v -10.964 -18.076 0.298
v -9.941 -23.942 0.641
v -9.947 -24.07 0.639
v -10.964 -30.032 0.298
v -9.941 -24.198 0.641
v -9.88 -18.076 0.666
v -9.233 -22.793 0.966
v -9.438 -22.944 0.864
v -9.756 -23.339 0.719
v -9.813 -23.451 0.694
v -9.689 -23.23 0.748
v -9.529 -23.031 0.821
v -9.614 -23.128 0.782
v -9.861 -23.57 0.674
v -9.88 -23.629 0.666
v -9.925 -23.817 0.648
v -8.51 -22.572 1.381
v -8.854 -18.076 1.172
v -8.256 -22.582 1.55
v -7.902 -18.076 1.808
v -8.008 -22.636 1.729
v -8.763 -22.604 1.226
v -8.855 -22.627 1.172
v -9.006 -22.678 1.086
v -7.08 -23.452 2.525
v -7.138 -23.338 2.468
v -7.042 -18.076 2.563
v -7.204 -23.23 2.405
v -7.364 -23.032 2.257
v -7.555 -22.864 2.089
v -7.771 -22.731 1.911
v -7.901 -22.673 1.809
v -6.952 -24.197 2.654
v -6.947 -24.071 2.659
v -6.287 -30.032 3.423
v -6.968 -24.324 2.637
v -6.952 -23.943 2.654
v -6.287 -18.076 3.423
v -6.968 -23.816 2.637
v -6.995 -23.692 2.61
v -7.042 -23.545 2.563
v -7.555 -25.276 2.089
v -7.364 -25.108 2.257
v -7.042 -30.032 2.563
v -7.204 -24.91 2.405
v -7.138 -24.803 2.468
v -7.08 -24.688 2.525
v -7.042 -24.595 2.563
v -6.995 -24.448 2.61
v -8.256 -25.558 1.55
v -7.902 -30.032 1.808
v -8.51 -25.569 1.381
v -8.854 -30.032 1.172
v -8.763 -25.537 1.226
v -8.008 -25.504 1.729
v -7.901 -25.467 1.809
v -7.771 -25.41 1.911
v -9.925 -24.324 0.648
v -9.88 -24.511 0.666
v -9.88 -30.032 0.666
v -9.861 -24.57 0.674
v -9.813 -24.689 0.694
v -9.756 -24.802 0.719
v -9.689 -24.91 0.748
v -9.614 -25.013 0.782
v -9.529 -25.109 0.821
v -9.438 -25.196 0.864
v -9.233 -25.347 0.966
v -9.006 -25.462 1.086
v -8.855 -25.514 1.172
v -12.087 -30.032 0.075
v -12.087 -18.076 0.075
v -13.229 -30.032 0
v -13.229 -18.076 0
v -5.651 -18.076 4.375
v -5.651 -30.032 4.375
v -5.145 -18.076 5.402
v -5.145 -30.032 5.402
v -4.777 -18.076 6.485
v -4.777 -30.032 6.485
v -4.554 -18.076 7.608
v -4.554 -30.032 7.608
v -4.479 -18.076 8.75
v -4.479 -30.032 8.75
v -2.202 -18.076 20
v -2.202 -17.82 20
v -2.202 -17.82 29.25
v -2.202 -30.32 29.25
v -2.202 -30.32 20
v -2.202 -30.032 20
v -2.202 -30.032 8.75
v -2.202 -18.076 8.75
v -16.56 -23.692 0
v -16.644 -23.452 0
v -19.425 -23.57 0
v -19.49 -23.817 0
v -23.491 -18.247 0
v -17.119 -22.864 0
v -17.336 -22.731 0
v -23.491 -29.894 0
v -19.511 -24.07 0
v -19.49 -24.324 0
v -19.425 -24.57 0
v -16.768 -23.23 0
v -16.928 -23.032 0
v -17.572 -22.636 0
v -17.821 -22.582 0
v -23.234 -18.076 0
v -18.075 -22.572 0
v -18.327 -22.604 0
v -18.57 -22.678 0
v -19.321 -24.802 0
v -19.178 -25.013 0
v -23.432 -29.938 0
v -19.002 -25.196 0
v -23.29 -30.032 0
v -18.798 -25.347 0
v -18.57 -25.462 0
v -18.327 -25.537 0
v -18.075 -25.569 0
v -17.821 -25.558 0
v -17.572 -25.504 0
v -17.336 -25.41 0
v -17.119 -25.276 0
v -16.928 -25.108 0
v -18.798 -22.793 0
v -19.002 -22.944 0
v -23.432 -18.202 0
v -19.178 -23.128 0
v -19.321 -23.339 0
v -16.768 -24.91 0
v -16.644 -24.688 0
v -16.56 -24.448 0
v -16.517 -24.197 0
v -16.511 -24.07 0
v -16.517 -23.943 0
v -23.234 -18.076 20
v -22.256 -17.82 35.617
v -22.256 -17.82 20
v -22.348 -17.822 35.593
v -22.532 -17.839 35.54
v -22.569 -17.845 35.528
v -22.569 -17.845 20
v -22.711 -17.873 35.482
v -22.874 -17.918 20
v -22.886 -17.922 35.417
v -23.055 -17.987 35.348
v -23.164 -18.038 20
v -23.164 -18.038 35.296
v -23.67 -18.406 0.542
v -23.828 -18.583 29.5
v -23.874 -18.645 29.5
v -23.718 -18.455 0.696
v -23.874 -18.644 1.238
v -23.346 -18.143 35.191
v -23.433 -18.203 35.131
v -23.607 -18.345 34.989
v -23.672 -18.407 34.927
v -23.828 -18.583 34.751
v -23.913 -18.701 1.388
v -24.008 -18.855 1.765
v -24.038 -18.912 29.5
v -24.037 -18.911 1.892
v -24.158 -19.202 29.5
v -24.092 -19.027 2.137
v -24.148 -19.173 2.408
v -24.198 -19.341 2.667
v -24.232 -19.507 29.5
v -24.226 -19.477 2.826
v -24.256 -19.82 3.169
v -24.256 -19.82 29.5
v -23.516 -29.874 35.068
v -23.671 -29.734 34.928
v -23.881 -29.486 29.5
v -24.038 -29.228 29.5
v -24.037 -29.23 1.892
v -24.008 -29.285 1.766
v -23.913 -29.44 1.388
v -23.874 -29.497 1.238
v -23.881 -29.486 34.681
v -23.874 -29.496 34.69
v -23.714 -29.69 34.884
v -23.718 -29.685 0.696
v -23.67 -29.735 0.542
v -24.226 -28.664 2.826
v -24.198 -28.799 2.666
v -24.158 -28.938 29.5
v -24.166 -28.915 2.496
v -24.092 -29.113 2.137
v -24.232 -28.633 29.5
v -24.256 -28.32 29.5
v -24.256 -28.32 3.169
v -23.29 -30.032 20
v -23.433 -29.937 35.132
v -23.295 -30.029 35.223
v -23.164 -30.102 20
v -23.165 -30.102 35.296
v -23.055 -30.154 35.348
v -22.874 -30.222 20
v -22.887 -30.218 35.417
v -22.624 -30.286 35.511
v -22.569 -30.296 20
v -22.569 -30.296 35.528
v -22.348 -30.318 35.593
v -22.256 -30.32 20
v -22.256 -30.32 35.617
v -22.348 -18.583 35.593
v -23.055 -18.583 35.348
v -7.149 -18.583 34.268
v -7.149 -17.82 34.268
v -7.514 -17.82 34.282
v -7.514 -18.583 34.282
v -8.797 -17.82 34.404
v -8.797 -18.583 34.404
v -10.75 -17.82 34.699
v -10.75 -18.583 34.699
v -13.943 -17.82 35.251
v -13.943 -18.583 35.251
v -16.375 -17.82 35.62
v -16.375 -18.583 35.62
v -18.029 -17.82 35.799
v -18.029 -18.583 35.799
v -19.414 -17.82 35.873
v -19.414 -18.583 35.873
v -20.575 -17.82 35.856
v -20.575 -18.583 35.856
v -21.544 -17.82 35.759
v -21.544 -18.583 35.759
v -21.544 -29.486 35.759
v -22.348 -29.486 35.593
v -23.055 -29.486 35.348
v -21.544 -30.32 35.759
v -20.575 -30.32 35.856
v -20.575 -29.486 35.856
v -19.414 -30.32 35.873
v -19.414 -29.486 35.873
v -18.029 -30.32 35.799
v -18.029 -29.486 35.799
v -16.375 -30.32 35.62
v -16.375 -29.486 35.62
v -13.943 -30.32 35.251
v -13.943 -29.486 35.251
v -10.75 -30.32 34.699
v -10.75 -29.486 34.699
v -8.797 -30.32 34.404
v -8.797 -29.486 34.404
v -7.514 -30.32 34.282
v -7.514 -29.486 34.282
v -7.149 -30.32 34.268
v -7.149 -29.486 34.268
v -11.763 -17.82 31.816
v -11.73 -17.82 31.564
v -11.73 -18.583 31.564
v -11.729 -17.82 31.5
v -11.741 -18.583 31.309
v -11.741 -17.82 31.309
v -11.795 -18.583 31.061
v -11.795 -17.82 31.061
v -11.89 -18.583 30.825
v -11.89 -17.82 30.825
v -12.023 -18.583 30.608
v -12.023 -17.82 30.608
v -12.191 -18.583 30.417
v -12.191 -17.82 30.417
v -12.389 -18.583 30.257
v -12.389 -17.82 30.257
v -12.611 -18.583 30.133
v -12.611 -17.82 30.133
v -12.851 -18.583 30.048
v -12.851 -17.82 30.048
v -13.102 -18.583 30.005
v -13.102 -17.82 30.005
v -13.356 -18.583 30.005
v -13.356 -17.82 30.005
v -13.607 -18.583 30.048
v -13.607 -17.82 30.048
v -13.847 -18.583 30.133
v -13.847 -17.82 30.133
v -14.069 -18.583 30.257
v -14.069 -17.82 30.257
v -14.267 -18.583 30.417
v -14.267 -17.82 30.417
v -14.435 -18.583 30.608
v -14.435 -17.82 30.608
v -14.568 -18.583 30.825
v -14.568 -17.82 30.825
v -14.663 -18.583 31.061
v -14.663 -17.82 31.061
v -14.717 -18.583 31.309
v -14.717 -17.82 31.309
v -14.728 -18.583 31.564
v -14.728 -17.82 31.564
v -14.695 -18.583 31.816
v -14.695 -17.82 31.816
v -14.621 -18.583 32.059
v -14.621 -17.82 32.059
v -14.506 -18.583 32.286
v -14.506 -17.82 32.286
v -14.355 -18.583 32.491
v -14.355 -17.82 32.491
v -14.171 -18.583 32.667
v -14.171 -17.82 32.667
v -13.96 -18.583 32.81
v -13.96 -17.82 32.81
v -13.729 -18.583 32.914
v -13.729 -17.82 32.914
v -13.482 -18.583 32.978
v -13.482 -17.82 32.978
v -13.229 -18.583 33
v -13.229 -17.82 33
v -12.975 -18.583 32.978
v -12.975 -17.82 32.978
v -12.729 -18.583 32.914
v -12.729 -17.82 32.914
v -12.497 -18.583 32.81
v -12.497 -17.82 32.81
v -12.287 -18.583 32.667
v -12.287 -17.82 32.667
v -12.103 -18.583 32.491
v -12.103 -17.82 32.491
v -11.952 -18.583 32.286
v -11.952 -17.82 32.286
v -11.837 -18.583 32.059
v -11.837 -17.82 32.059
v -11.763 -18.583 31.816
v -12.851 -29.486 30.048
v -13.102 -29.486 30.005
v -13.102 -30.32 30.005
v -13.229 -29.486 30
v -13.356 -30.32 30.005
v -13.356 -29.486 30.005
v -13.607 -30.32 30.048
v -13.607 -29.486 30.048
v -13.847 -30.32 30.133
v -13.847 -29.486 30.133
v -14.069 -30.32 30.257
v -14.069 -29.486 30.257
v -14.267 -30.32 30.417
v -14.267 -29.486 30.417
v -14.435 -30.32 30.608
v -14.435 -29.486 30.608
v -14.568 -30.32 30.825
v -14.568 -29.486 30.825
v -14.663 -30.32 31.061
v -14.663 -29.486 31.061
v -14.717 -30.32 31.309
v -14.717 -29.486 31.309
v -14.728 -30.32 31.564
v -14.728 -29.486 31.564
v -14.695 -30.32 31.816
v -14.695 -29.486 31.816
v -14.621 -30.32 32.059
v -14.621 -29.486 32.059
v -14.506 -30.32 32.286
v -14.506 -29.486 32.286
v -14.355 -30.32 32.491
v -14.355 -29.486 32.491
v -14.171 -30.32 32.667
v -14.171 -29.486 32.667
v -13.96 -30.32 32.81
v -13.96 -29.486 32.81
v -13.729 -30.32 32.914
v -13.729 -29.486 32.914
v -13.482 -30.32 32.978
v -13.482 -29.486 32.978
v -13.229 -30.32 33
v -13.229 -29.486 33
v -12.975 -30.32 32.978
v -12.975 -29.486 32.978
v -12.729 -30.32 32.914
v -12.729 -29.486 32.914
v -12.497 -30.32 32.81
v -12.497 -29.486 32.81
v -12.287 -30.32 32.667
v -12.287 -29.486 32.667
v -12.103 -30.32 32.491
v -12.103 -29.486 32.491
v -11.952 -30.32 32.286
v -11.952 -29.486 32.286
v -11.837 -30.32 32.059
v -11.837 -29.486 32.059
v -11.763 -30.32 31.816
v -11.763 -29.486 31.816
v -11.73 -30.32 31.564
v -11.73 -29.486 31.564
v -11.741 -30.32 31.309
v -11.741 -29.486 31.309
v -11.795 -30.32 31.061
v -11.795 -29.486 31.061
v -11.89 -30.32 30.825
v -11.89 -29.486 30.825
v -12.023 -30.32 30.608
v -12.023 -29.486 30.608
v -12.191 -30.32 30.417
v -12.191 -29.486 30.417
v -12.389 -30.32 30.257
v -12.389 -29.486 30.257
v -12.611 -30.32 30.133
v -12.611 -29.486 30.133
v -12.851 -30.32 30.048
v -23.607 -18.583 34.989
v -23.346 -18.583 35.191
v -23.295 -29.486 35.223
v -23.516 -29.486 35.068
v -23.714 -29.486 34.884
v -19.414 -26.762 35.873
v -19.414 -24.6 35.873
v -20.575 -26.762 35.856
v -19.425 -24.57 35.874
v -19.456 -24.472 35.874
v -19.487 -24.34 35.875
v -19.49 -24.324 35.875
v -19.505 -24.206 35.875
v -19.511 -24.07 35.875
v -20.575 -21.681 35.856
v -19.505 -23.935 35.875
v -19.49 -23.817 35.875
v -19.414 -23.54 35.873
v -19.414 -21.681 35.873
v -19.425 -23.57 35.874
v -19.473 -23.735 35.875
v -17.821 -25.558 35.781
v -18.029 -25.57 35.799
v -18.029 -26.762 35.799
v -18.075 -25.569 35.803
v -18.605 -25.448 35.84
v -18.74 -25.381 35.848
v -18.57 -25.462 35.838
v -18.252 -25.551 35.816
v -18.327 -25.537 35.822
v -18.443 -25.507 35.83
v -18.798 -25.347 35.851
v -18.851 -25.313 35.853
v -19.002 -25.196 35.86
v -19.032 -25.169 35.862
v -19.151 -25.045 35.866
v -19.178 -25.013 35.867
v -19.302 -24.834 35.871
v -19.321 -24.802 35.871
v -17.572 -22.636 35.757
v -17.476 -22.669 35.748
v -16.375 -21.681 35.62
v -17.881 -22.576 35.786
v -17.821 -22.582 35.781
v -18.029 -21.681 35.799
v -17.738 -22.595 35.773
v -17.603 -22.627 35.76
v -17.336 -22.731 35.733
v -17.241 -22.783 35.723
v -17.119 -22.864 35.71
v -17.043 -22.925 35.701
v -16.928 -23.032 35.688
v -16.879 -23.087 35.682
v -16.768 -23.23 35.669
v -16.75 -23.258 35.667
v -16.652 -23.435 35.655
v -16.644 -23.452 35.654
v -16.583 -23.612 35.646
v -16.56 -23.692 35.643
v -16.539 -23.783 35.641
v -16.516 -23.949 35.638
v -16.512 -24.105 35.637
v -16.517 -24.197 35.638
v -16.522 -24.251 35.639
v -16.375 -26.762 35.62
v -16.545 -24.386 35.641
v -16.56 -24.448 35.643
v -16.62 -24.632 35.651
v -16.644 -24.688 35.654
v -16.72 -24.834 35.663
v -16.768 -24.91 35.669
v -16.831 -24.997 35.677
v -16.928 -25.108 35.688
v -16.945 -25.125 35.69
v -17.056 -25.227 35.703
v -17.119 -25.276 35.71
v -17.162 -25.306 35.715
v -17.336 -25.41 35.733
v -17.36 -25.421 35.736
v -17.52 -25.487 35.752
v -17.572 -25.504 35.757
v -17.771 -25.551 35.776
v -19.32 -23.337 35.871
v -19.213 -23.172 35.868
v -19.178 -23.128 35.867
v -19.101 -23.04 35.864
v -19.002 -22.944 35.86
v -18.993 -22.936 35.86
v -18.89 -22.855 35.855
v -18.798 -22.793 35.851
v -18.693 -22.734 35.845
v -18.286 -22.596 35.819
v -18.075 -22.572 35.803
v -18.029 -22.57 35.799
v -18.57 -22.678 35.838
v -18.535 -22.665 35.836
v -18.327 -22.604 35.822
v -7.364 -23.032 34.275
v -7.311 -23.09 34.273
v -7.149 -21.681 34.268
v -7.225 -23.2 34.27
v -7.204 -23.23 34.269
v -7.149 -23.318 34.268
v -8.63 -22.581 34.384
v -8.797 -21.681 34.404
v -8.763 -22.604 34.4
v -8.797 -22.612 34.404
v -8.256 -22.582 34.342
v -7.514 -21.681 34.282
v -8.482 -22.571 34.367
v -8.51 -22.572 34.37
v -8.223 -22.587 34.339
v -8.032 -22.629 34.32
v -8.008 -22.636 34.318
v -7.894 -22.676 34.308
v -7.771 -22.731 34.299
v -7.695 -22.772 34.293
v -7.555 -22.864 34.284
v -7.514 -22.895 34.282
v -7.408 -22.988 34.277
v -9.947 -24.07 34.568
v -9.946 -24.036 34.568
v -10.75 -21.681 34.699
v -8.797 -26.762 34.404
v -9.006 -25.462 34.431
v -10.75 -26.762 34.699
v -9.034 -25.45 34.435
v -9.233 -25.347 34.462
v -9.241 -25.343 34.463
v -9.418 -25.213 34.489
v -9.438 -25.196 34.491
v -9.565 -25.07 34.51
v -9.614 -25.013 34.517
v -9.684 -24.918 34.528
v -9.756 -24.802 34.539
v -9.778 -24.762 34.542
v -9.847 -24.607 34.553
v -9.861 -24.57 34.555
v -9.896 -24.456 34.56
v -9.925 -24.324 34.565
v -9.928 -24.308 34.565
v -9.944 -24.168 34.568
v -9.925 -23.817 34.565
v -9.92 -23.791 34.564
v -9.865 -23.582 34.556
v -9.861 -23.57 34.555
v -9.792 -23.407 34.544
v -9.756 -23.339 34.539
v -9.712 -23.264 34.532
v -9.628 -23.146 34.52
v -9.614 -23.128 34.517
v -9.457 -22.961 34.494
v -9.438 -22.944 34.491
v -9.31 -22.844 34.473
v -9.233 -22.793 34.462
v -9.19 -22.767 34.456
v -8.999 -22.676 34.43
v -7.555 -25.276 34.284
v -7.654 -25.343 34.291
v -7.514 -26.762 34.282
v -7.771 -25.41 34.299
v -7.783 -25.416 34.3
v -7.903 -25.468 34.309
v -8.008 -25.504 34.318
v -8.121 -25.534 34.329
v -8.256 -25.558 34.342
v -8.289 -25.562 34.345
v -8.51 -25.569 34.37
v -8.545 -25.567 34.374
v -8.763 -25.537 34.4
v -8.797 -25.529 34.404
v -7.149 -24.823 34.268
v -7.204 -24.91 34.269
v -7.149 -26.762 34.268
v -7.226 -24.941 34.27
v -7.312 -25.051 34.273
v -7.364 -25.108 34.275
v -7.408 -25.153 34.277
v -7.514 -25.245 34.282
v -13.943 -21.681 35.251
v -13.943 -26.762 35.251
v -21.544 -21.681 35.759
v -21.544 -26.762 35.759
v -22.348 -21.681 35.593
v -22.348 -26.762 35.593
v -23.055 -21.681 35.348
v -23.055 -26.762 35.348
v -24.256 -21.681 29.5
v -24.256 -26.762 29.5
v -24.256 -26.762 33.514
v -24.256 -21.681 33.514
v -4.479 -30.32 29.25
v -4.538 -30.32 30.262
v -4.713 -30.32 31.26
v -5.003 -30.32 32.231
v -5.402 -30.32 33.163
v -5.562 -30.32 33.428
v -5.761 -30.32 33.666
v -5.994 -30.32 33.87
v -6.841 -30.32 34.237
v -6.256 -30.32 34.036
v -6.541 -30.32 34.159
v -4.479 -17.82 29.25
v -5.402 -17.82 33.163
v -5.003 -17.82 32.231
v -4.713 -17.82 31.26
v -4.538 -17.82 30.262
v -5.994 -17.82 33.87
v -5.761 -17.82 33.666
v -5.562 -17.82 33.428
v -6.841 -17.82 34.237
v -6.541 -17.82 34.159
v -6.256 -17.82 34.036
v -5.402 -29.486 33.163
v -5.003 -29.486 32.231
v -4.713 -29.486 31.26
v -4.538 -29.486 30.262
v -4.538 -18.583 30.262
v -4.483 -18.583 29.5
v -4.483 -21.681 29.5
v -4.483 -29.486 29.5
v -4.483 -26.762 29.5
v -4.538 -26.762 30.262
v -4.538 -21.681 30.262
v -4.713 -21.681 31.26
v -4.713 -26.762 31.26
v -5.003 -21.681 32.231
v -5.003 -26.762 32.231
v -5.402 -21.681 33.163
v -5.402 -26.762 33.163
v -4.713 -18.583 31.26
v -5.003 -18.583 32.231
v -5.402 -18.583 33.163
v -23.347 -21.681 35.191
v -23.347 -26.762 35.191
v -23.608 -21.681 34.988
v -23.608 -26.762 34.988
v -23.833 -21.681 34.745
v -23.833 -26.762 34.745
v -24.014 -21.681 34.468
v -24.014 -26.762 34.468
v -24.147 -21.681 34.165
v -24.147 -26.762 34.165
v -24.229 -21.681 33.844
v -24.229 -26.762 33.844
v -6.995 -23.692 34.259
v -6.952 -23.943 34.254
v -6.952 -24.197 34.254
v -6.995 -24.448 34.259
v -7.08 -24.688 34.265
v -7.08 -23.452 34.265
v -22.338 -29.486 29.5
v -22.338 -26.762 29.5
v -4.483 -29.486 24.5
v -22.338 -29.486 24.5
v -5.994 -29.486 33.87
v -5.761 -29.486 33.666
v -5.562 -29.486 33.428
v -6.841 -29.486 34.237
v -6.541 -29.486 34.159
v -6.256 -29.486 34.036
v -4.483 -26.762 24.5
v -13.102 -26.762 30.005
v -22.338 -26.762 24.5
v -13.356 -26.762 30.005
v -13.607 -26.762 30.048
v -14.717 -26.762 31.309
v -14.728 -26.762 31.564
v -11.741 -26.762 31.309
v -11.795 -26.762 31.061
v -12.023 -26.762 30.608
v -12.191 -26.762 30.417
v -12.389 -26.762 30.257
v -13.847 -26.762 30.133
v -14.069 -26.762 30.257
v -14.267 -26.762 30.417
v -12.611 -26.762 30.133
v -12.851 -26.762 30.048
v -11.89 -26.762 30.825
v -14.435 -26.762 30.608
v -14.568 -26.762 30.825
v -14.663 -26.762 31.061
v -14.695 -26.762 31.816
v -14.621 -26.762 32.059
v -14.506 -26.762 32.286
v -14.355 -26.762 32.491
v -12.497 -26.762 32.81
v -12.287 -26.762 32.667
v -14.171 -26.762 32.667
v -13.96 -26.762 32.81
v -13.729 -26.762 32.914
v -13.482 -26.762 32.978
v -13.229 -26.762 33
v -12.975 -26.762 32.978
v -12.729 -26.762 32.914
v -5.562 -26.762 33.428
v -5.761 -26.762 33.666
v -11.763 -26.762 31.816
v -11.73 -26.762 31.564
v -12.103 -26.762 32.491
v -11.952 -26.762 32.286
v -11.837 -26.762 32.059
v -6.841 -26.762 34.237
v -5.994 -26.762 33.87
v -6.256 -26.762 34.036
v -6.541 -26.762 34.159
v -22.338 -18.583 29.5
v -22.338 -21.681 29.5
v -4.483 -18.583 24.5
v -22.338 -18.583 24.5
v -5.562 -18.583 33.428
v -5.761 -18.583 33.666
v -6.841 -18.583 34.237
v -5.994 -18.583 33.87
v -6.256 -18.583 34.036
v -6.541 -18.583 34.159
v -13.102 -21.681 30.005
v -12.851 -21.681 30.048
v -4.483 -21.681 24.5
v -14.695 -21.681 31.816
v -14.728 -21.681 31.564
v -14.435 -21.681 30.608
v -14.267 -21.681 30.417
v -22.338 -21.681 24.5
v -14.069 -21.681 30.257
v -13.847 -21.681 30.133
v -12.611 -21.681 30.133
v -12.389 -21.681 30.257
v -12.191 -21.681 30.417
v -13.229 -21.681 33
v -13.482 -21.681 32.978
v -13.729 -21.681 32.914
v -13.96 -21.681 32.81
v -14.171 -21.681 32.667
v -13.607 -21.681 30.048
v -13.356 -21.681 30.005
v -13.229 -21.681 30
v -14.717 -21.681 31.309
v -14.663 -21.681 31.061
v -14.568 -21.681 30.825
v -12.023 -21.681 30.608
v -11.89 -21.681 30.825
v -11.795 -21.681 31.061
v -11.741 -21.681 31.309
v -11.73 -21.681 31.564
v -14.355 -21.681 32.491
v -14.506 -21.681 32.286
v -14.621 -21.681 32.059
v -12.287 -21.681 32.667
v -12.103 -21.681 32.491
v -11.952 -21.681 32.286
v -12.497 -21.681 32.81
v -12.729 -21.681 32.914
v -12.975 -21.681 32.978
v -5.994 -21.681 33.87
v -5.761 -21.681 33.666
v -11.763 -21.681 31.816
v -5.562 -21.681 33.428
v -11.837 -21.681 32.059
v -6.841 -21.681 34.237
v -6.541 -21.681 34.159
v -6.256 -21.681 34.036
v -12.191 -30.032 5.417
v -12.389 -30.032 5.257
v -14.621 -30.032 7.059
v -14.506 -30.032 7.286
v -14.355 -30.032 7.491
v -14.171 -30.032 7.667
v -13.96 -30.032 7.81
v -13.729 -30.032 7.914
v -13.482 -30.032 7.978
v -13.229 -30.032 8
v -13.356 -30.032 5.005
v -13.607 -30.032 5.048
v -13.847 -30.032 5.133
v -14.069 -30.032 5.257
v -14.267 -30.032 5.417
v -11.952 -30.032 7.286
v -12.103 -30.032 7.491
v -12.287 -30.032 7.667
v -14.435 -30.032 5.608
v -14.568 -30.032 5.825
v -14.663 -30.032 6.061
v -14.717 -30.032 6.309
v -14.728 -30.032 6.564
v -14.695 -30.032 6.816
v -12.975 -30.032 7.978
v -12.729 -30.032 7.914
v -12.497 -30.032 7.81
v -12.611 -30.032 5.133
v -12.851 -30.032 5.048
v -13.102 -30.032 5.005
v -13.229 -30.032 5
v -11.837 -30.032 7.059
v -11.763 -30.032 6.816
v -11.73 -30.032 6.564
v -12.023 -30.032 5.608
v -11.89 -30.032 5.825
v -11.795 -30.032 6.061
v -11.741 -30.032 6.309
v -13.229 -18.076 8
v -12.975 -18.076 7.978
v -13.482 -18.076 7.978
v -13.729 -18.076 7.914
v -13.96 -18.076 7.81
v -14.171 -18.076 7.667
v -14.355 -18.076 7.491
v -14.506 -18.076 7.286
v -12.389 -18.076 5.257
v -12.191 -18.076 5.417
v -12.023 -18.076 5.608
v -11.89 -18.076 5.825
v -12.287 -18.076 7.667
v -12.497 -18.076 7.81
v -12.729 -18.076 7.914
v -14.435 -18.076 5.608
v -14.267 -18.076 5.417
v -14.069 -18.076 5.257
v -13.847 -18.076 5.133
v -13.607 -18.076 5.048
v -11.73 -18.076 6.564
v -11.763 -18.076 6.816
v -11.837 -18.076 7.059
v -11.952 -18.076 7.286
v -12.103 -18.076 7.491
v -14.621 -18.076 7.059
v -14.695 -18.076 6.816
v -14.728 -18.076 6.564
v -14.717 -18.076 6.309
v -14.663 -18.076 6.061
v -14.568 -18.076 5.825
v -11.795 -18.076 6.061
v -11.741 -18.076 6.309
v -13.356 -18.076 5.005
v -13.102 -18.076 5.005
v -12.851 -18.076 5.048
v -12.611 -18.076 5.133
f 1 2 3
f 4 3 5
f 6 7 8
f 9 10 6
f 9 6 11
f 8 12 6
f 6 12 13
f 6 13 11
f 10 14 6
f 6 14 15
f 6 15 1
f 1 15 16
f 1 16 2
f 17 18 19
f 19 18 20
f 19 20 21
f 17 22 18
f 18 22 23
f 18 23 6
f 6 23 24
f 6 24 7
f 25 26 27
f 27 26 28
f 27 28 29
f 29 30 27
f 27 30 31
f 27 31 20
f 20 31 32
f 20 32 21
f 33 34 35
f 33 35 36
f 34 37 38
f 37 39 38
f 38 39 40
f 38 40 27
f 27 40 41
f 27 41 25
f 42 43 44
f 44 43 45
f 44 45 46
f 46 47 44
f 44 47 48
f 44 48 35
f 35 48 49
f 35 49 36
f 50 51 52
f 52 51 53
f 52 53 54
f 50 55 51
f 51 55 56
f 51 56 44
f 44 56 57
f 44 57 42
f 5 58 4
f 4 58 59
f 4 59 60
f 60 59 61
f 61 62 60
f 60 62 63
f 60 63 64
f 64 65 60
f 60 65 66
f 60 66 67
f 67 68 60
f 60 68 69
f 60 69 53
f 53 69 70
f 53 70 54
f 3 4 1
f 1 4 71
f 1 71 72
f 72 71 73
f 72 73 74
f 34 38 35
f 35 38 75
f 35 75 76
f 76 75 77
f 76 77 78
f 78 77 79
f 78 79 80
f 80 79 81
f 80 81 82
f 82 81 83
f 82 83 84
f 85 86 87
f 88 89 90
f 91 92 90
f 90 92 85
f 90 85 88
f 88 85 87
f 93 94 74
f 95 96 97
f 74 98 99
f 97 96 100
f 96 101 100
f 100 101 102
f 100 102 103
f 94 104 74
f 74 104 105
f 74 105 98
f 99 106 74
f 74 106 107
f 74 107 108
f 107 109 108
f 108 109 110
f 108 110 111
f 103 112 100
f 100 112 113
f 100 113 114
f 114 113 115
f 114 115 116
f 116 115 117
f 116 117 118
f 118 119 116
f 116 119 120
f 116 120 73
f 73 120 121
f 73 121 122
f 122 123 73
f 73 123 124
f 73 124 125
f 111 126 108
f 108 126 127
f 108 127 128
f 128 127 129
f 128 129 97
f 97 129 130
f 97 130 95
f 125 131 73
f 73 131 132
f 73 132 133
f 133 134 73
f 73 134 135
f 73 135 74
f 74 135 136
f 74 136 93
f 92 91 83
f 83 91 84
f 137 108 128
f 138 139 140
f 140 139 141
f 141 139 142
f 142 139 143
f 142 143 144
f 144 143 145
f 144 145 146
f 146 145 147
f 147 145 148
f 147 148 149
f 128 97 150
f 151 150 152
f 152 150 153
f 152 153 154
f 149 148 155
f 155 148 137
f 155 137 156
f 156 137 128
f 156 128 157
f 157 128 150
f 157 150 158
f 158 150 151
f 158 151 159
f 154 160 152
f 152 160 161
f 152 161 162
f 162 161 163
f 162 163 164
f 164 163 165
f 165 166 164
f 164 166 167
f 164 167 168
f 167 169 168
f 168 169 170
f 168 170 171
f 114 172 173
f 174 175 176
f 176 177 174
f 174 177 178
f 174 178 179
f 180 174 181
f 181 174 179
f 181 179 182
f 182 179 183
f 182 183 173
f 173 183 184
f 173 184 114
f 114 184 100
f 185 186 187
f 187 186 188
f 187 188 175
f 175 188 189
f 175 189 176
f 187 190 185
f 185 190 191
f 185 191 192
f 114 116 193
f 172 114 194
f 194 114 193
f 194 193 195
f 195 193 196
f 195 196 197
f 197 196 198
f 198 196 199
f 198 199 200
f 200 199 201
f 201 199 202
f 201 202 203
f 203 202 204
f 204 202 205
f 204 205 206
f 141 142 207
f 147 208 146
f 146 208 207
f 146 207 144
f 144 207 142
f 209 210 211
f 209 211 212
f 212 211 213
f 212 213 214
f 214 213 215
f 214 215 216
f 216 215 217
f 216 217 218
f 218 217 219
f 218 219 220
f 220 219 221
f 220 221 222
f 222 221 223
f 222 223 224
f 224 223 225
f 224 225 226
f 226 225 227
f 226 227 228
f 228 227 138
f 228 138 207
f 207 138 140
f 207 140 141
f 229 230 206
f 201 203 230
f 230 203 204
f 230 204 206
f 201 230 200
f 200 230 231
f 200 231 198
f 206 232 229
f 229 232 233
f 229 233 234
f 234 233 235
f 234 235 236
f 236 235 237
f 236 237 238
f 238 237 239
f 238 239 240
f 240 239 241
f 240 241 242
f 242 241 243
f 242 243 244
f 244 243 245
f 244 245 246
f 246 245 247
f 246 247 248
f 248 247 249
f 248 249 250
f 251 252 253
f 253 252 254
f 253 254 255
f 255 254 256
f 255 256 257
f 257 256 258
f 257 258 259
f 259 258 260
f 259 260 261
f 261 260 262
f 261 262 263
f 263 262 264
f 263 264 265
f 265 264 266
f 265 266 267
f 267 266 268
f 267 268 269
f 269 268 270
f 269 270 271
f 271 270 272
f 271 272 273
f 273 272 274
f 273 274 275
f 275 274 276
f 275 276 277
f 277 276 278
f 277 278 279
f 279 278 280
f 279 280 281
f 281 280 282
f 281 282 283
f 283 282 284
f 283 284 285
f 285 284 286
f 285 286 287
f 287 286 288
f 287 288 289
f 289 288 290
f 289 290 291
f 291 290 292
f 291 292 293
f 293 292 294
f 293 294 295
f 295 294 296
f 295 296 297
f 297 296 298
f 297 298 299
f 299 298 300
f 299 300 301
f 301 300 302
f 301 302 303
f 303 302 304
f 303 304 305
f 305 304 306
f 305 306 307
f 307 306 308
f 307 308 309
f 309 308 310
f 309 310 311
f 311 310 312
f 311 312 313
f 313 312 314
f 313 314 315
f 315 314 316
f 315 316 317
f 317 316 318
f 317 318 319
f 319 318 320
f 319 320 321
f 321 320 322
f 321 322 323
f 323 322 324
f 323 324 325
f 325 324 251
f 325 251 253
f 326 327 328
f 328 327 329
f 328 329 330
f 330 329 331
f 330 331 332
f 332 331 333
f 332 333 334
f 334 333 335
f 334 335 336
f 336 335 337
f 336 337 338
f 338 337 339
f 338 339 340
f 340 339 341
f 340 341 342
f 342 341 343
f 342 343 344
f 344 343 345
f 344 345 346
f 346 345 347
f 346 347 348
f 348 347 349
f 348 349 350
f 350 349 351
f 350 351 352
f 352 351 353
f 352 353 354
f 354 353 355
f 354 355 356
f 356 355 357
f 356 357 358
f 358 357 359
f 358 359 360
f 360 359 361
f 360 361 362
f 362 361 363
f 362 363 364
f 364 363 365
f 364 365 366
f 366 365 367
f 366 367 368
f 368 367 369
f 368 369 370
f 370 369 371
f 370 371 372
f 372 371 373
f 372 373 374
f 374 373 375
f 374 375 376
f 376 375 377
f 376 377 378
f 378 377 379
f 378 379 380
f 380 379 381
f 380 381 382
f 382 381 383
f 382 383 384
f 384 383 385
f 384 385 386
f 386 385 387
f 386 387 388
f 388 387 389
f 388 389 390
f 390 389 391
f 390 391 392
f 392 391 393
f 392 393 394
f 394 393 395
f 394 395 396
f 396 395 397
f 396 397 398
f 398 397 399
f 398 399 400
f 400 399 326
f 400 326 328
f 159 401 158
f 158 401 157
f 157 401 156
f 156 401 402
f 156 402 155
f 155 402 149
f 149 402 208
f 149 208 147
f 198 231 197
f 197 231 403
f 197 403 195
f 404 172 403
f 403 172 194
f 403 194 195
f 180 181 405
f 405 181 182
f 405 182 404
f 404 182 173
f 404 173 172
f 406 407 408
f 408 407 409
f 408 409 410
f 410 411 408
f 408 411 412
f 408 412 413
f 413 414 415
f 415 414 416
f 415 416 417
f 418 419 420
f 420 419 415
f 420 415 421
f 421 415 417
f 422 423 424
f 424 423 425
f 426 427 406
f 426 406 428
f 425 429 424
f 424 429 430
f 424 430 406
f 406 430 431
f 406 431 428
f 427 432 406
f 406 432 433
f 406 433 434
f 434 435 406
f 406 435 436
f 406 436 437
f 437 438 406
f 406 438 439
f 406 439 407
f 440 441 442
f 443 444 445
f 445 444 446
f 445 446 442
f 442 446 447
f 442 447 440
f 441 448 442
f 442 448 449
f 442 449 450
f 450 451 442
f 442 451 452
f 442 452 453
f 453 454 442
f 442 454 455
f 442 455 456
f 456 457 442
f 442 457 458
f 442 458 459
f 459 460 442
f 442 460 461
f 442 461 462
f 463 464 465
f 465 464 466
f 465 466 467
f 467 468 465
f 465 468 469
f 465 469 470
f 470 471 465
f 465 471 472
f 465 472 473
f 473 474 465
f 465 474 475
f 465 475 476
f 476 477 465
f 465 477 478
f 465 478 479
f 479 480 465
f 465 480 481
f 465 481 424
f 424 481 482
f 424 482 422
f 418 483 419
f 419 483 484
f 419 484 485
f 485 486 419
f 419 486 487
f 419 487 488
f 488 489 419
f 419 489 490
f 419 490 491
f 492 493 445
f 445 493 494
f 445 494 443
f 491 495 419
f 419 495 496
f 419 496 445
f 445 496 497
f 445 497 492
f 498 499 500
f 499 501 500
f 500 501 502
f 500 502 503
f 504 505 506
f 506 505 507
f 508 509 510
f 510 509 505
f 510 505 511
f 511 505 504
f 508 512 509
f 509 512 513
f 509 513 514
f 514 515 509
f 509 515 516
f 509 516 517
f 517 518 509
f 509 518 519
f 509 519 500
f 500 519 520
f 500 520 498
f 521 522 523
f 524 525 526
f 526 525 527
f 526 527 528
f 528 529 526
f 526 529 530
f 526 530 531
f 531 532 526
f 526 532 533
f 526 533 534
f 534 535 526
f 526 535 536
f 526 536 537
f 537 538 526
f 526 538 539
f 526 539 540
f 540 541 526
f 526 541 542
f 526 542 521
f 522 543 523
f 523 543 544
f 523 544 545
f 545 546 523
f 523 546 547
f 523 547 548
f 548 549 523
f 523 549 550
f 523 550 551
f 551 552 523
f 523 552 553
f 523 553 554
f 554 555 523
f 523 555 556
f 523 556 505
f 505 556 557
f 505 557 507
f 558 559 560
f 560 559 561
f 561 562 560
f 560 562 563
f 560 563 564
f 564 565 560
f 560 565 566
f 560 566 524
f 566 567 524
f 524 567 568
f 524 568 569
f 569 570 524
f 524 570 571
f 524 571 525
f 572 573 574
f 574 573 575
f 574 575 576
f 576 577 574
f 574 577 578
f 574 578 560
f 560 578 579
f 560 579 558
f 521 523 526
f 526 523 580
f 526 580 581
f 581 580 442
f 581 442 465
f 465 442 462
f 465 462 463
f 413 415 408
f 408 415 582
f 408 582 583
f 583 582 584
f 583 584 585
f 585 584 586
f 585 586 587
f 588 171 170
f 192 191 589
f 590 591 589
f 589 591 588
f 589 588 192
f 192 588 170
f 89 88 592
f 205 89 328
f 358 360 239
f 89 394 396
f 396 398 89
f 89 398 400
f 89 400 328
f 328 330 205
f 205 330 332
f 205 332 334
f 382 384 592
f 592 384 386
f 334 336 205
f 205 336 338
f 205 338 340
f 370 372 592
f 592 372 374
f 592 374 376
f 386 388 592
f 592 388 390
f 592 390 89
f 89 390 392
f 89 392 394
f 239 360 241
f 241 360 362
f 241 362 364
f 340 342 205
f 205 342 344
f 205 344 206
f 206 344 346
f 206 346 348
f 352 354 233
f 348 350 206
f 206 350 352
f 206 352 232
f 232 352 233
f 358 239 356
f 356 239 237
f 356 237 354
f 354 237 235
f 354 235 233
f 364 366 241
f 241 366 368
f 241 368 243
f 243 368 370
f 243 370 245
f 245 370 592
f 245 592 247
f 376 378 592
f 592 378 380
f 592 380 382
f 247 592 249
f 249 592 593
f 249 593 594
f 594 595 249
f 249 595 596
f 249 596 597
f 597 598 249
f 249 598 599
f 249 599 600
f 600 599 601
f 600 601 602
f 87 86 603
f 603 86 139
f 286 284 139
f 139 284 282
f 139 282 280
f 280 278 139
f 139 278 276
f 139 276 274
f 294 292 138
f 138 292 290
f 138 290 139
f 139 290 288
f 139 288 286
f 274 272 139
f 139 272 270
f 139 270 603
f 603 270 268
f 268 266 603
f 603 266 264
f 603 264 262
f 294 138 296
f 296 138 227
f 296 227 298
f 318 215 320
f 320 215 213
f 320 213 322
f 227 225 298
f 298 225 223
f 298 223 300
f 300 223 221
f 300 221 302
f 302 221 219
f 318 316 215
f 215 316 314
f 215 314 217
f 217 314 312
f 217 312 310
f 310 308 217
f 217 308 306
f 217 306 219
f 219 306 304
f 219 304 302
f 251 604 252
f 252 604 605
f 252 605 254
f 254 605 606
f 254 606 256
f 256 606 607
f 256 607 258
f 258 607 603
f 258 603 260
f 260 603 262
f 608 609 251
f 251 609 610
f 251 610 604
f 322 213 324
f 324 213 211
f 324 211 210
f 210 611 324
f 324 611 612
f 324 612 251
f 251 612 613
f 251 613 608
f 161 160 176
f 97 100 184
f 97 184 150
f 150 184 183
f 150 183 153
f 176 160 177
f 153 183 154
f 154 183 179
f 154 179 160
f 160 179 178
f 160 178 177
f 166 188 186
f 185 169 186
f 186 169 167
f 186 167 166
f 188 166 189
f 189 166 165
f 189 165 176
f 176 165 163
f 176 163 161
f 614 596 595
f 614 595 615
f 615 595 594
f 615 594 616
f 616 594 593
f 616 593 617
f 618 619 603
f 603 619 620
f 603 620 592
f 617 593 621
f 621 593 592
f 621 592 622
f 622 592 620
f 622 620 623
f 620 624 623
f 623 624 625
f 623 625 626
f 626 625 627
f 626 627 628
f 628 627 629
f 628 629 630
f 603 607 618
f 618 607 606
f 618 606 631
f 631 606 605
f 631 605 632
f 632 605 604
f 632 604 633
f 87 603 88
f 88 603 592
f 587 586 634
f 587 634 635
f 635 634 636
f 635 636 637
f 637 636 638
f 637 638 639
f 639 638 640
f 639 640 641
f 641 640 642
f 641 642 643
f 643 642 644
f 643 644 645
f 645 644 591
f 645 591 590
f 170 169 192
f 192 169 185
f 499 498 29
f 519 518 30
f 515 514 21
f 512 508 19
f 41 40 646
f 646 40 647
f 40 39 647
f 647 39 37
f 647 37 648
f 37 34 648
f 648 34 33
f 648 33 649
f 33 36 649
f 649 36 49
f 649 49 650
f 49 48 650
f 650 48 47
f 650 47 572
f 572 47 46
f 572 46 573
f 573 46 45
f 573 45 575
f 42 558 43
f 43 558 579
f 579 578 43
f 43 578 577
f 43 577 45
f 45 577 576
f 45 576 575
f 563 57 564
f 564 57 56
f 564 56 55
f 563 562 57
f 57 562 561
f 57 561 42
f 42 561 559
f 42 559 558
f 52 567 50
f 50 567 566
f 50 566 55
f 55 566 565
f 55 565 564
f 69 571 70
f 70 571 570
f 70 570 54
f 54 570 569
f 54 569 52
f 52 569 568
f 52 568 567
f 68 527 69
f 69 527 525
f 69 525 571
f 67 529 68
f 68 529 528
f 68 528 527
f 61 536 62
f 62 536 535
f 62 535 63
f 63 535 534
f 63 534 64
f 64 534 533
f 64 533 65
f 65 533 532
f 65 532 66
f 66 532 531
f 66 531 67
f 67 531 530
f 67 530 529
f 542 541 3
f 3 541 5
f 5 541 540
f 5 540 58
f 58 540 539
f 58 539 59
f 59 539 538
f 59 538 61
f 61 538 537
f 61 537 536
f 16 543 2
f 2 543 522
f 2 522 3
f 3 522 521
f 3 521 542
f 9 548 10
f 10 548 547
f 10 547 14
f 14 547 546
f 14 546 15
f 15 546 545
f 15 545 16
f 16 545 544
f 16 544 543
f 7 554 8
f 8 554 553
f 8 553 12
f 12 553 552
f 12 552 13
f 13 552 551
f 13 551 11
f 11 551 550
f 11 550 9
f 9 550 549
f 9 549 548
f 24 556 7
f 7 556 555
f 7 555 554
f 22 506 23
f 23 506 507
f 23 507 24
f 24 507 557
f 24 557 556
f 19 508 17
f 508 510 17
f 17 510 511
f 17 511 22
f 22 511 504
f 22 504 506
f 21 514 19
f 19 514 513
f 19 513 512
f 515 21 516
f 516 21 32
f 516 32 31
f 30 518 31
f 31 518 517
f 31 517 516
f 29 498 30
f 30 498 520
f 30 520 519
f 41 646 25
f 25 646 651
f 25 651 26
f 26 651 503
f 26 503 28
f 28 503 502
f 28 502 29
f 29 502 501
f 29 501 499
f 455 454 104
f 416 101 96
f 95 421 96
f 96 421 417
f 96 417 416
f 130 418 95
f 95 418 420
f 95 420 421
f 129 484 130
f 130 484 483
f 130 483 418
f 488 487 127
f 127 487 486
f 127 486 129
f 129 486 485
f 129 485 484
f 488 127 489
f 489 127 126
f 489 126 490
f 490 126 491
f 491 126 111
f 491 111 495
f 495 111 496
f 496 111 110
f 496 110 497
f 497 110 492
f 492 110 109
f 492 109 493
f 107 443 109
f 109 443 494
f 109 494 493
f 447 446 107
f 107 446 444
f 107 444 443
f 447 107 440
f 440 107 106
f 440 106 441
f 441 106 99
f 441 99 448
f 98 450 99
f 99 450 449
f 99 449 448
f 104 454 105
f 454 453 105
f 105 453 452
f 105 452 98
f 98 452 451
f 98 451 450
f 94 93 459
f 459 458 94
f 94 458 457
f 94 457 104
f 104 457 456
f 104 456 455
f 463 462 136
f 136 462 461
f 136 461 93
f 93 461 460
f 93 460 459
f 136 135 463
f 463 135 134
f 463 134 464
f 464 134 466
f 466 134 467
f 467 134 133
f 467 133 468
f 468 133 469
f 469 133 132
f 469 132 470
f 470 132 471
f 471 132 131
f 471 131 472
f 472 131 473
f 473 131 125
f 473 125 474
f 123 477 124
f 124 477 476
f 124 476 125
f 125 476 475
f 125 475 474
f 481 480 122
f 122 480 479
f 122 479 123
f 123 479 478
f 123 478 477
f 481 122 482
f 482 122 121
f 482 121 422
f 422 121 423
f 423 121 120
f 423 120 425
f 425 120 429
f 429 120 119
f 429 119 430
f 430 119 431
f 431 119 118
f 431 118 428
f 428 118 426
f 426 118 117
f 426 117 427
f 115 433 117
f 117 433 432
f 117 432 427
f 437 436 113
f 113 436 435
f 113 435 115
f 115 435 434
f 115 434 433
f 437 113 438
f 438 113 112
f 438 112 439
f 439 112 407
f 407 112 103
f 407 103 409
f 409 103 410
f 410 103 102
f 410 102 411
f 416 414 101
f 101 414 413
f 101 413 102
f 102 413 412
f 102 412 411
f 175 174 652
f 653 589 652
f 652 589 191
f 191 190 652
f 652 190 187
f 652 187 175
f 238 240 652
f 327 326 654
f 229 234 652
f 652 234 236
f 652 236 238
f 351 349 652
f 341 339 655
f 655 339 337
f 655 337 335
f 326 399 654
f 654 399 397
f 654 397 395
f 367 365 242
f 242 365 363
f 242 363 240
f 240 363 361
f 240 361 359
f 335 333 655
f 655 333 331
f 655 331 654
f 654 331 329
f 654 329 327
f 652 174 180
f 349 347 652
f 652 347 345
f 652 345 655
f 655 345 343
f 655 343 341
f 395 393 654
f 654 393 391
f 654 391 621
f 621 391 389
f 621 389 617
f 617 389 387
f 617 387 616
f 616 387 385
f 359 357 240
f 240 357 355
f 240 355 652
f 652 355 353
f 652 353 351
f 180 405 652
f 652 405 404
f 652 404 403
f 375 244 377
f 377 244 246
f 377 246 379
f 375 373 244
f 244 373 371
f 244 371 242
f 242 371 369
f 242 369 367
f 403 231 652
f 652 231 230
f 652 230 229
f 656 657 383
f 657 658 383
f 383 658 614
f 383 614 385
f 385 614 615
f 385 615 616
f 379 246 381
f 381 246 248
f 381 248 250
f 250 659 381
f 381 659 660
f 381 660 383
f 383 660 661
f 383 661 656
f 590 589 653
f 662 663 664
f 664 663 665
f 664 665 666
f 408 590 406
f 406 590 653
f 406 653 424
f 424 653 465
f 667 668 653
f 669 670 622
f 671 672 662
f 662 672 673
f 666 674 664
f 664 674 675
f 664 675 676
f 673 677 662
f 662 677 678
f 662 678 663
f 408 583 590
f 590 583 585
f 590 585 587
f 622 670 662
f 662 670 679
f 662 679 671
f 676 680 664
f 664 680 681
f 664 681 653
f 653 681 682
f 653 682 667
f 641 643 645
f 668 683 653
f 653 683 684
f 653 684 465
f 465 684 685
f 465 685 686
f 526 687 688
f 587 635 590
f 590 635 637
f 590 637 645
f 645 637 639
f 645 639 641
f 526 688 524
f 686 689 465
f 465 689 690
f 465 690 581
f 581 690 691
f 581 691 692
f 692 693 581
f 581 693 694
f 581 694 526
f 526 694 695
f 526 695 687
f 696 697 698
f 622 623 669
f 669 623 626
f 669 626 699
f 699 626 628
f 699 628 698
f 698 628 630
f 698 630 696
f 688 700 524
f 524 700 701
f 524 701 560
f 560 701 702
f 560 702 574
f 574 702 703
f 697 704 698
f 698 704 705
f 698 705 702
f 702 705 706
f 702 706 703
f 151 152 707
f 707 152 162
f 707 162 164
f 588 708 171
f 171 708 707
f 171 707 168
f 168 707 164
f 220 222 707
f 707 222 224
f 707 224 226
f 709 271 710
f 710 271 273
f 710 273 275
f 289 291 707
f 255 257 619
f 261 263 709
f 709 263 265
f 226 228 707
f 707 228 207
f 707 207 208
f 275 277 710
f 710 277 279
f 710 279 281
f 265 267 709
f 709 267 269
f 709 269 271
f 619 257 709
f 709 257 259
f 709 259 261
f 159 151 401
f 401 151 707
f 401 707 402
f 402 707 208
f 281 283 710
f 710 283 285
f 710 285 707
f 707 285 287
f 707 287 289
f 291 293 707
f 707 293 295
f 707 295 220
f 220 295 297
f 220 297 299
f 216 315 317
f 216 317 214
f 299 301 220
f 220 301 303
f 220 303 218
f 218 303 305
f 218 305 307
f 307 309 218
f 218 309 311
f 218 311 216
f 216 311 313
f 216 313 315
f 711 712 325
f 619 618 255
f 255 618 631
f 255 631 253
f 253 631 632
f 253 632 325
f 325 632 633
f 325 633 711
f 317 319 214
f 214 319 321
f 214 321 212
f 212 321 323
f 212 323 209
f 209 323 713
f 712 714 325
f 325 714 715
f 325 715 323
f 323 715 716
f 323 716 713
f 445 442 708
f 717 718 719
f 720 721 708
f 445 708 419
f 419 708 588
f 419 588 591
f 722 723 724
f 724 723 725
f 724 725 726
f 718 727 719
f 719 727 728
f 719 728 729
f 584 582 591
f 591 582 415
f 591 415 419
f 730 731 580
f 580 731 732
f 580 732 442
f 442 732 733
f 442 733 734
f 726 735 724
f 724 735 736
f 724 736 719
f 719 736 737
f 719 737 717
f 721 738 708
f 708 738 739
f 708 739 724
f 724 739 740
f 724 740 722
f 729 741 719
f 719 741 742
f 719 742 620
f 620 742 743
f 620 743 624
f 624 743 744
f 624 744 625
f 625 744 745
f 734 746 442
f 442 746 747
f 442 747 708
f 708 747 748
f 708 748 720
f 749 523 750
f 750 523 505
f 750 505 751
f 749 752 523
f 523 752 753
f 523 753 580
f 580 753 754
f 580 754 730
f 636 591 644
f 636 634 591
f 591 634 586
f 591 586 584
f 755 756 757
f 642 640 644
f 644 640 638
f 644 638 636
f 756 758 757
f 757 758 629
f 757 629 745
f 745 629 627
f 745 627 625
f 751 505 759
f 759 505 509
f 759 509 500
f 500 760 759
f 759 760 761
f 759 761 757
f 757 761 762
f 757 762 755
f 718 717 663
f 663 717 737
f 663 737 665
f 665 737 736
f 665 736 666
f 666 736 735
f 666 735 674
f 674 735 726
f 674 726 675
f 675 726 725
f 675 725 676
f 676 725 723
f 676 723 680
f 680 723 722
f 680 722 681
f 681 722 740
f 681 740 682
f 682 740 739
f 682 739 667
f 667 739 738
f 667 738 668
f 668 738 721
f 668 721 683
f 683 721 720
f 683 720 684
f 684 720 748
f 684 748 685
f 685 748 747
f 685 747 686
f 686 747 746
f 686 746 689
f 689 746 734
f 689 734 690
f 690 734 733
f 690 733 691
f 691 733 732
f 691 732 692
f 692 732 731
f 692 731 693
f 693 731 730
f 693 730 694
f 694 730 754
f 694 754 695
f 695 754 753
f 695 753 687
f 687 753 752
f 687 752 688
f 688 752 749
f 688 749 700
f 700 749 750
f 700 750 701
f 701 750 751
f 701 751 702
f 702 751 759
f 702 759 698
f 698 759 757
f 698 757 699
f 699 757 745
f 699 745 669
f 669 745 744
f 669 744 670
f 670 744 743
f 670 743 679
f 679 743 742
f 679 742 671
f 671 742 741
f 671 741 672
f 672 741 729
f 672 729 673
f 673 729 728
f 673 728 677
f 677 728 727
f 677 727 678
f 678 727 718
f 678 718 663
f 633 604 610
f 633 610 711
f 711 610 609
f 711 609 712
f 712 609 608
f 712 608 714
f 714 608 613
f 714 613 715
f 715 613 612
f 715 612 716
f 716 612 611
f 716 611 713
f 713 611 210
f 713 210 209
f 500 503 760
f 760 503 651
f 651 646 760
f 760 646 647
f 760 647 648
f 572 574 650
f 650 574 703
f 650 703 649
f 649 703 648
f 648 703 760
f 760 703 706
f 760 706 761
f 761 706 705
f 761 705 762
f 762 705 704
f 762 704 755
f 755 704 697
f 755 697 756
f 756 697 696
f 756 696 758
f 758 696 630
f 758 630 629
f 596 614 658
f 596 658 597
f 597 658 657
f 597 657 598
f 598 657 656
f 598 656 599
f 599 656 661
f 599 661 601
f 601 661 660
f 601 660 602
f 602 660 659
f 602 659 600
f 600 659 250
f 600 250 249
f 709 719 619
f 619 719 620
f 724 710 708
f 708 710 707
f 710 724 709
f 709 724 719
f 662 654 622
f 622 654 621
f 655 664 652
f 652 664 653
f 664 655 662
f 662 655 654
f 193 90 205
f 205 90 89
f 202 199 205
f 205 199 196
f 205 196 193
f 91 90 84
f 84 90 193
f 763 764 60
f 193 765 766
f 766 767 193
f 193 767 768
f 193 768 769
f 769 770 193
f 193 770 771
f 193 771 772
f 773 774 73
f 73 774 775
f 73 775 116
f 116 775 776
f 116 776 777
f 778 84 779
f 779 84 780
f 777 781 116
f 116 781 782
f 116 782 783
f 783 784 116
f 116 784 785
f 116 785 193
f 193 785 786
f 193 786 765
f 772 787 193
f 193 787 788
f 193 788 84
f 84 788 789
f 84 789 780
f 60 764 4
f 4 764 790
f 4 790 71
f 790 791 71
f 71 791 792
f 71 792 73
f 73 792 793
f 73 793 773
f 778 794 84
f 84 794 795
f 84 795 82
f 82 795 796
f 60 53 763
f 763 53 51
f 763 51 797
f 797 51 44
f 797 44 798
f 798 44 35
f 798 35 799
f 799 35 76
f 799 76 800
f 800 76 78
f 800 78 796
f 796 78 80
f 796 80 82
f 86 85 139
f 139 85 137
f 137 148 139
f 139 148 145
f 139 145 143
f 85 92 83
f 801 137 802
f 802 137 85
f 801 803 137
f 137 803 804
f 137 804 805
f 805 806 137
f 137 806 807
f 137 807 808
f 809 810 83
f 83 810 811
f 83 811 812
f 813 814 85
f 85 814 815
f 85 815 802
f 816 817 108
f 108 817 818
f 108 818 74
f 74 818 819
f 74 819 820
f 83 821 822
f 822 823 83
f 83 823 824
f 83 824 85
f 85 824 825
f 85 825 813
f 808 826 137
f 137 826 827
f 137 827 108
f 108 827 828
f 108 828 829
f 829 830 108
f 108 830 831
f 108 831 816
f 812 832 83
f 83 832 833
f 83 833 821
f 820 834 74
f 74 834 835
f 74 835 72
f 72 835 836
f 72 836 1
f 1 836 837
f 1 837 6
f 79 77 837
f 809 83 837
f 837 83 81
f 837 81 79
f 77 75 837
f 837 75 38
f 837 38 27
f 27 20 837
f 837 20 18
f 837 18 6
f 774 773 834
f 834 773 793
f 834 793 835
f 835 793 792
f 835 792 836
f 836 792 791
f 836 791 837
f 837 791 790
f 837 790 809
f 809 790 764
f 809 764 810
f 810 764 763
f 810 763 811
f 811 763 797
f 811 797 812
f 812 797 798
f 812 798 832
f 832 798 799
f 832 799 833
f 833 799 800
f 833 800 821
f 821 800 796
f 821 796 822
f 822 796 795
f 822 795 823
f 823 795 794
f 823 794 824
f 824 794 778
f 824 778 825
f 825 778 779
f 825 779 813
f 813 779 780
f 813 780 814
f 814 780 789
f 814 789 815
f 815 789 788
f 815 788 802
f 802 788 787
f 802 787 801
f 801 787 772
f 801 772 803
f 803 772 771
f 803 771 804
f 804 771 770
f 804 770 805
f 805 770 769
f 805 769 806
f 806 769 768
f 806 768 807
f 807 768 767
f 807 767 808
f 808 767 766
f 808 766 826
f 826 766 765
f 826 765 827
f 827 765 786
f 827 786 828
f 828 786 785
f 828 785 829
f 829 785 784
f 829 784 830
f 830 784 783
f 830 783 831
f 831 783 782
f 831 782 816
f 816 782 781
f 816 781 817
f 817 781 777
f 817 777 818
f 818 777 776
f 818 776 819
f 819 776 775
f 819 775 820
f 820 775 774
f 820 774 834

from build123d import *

# Parameters (mm, degrees)
SKETCH1_W               = 22.054431489
SKETCH1_H               = 12.5
BOSS_EXTRUDE1_DEPTH     = 40
CUT_EXTRUDE1_DEPTH      = 10
CUT_EXTRUDE1_DEPTH_BACK = 15
SKETCH2_R               = 1.5
FILLET3_R               = 2
SKETCH5_R               = 1.5
CUT_EXTRUDE4_DEPTH      = 53.86644408
SKETCH16_W              = 22.16406654
SKETCH16_H              = 3.097743049
SKETCH16_W_2            = 22.194630718
SKETCH16_H_2            = 2.724396189
CUT_EXTRUDE6_DEPTH      = 8.5
FILLET4_R               = 2
SKETCH17_W              = 17.85596127
SKETCH17_H              = 3.097743049
SKETCH17_H_2            = 2.724396189
CUT_EXTRUDE7_DEPTH      = 5
SKETCH18_W              = 23.758682738
SKETCH18_H              = 0.759330362
SKETCH18_W_2            = 23.717859304
SKETCH18_H_2            = 0.728261761
CUT_EXTRUDE8_DEPTH      = 20


with BuildPart() as part:
    # Sketch1 → Boss-Extrude1 (new body)
    with BuildSketch(Plane.XY):
        with Locations((-13.228930986, -24.070183414)):
            Rectangle(SKETCH1_W, SKETCH1_H)
    extrude(amount=BOSS_EXTRUDE1_DEPTH)

    # Sketch2 → Cut-Extrude1 (cut, two sides: drawn at the far end of the back side and taken through both)
    with BuildSketch(Plane.XZ.offset(30.320183414).offset(-CUT_EXTRUDE1_DEPTH_BACK)):
        with Locations(Location((-13.228930986, 6.5, 0), (0, 0, 90))):
            Circle(SKETCH2_R)
        with Locations(Location((-13.228930986, 31.5, 0), (0, 0, 90))):
            Circle(SKETCH2_R)
        with BuildLine():
            Line((-4.478930986, 29.25), (-2.201715242, 29.25))
            add(Edge.make_bspline(
                [(-24.256146731, 29.25), (-34.277912729, 38.417119108), (-13.227499763, 50.308047167), (7.840407292, 38.416977249), (-2.201715242, 29.25)],
                knots=[0, 0, 0, 0, 0.49986218, 1, 1, 1, 1], degree=3))
            add(Edge.make_bspline(
                [(-6.103895584, 34.329012749), (-10.720559386, 33.527203043), (-28.641384523, 40.845191705), (-24.256146731, 29.25)],
                knots=[0, 0, 0, 0, 1, 1, 1, 1], degree=3))
            ThreePointArc((-6.103895584, 34.329012749), (-4.895067543, 31.916312081), (-4.478930986, 29.25))
        make_face()
        with BuildLine():
            Line((-4.478930986, 8.75), (-2.201715242, 8.75))
            add(Edge.make_bspline(
                [(-2.201715242, 8.75), (5.39210746, 3.880294823), (-0.777052631, -4.523329032), (-17.174300591, -10.623347238), (-34.821400648, -0.026005424), (-24.256146731, 8.75)],
                knots=[0, 0, 0, 0, 0.283272691, 0.504244858, 1, 1, 1, 1], degree=3))
            add(Edge.make_bspline(
                [(-23.490579314, 0), (-24.966512963, 4.237786421), (-24.256146731, 8.75)],
                knots=[0, 0, 0, 1, 1, 1], degree=2))
            Line((-23.490579314, 0), (-13.228930986, 0))
            ThreePointArc((-13.228930986, 0), (-7.041746651, 2.562815665), (-4.478930986, 8.75))
        make_face()
    extrude(amount=CUT_EXTRUDE1_DEPTH + CUT_EXTRUDE1_DEPTH_BACK, mode=Mode.SUBTRACT)

    # Fillet3
    # the kernel refuses this fillet: 2 mm, written as the material it takes off along each edge
    with BuildSketch(Plane(origin=(-24.256146731, -17.820183414, -5.498495188), x_dir=(1, 0, 0), z_dir=(0, 0, 1))) as fillet3_piece_1:
        with BuildLine():
            CenterArc((FILLET3_R, -FILLET3_R), FILLET3_R, 90, 90)
            Line((0, -FILLET3_R), (-FILLET3_R * 0.02, -FILLET3_R))
            Line((-FILLET3_R * 0.02, -FILLET3_R), (-FILLET3_R * 0.02, FILLET3_R * 0.02))
            Line((-FILLET3_R * 0.02, FILLET3_R * 0.02), (FILLET3_R, FILLET3_R * 0.02))
            Line((FILLET3_R, FILLET3_R * 0.02), (FILLET3_R, 0))
        make_face()
    extrude(amount=44.984872581, mode=Mode.SUBTRACT)
    with BuildSketch(Plane(origin=(-24.256146731, -30.320183414, -5.498495188), x_dir=(1, 0, 0), z_dir=(0, 0, 1))) as fillet3_piece_2:
        with BuildLine():
            CenterArc((FILLET3_R, FILLET3_R), FILLET3_R, 180, 90)
            Line((0, FILLET3_R), (-FILLET3_R * 0.02, FILLET3_R))
            Line((-FILLET3_R * 0.02, FILLET3_R), (-FILLET3_R * 0.02, -FILLET3_R * 0.02))
            Line((-FILLET3_R * 0.02, -FILLET3_R * 0.02), (FILLET3_R, -FILLET3_R * 0.02))
            Line((FILLET3_R, -FILLET3_R * 0.02), (FILLET3_R, 0))
        make_face()
    extrude(amount=44.984872581, mode=Mode.SUBTRACT)
    with BuildSketch(Plane(origin=(-24.256146731, -17.374523396, 3.001504812), x_dir=(0.16676818592575848, -1.2260366807919533e-15, -0.9859961319209278), z_dir=(0, -1, 0))) as fillet3_piece_3:
        with BuildLine():
            CenterArc((0.168096911, 1.999974157), FILLET3_R, 260.400032587, 9.891234523)
            Line((-0.165439461, 0.027981894), (-0.172110188, -0.011457952))
            Line((-0.172110188, -0.011457952), (-0.006670727, -0.039439845))
            Line((-0.006670727, -0.039439845), (-0.00020343, -0.039999483))
            ThreePointArc((-0.00020343, -0.039999483), (0.089132026, -0.040226606), (0.178467349, -0.039999483))
            Line((0.178467349, -0.039999483), (0.178264007, 0))
        make_face()
    extrude(amount=13.391320036, mode=Mode.SUBTRACT)
    with BuildSketch(Plane(origin=(-24.256146731, -14.125185169, 34.486377393), x_dir=(0.8125654725304995, 0, 0.5828699279009736), z_dir=(0, -1, 0))) as fillet3_piece_4:
        with BuildLine():
            CenterArc((1.058597408, -1.955531144), FILLET3_R, 77.895172565, 66.452175148)
            Line((-0.566533537, -0.789791288), (-0.599036156, -0.766476491))
            Line((-0.599036156, -0.766476491), (-0.032502619, 0.023314797))
            Line((-0.032502619, 0.023314797), (-0.009827922, 0.038773856))
            ThreePointArc((-0.009827922, 0.038773856), (0.740246051, 0.125750941), (1.486387336, 0.039110623))
            Line((1.486387336, 0.039110623), (1.477999298, 0))
        make_face()
    extrude(amount=19.88999649, mode=Mode.SUBTRACT)

    # Sketch5 → Cut-Extrude4 (cut, through all)
    with BuildSketch(Plane.XY):
        with Locations(Location((-18.011106811, -24.070183414, 0), (0, 0, 180))):
            Circle(SKETCH5_R)
        with Locations(Location((-8.446755162, -24.070183414, 0), (0, 0, 180))):
            Circle(SKETCH5_R)
    extrude(amount=CUT_EXTRUDE4_DEPTH, mode=Mode.SUBTRACT)

    # Sketch16 → Cut-Extrude6 (cut)
    with BuildSketch(Plane.XY.offset(38)):
        with Locations((-13.228930985, -20.132105575)):
            Rectangle(SKETCH16_W, SKETCH16_H)
        with Locations((-13.228930985, -28.124114993)):
            Rectangle(SKETCH16_W_2, SKETCH16_H_2)
    extrude(amount=-CUT_EXTRUDE6_DEPTH, mode=Mode.SUBTRACT)

    # Fillet4
    # the kernel refuses this fillet: 2 mm, written as the material it takes off along each edge
    with BuildSketch(Plane(origin=(-6.103895584, -21.985936801, 34.329012749), x_dir=(0.5153680546007453, 0, -0.8569689424343471), z_dir=(0, 1, 0))) as fillet4_piece_1:
        with BuildLine():
            CenterArc((1.205528974, 1.993941708), FILLET4_R, 212.228268917, 62.232476225)
            Line((-0.486331325, 0.927354287), (-0.520168531, 0.906022538))
            ThreePointArc((-0.520168531, 0.906022538), (-0.25689069, 0.456334761), (-0.037300681, -0.01444504))
            Line((-0.037300681, -0.01444504), (-0.003111043, -0.039878834))
            ThreePointArc((-0.003111043, -0.039878834), (0.68054055, -0.066505026), (1.364192143, -0.039878834))
            Line((1.364192143, -0.039878834), (1.3610811, 0))
        make_face()
    extrude(amount=7.568456138, mode=Mode.SUBTRACT)
    with BuildSketch(Plane(origin=(-6.103895584, -30.164619649, 34.329012749), x_dir=(0.5153680546007453, 0, -0.8569689424343471), z_dir=(0, 1, 0))) as fillet4_piece_2:
        with BuildLine():
            CenterArc((1.205528974, 1.993941708), FILLET4_R, 212.228268917, 62.232476225)
            Line((-0.486331325, 0.927354287), (-0.520168531, 0.906022538))
            ThreePointArc((-0.520168531, 0.906022538), (-0.25689069, 0.456334761), (-0.037300681, -0.01444504))
            Line((-0.037300681, -0.01444504), (-0.003111043, -0.039878834))
            ThreePointArc((-0.003111043, -0.039878834), (0.68054055, -0.066505026), (1.364192143, -0.039878834))
            Line((1.364192143, -0.039878834), (1.3610811, 0))
        make_face()
    extrude(amount=11.886345299, mode=Mode.SUBTRACT)
    with BuildSketch(Plane(origin=(-6.103895584, -33.722886164, 34.329012749), x_dir=(0.5153680546007453, 0, -0.8569689424343471), z_dir=(0, 1, 0))) as fillet4_piece_3:
        with BuildLine():
            CenterArc((1.205528974, 1.993941708), FILLET4_R, 212.228268917, 62.232476225)
            Line((-0.486331325, 0.927354287), (-0.520168531, 0.906022538))
            ThreePointArc((-0.520168531, 0.906022538), (-0.25689069, 0.456334761), (-0.037300681, -0.01444504))
            Line((-0.037300681, -0.01444504), (-0.003111043, -0.039878834))
            ThreePointArc((-0.003111043, -0.039878834), (0.68054055, -0.066505026), (1.364192143, -0.039878834))
            Line((1.364192143, -0.039878834), (1.3610811, 0))
        make_face()
    extrude(amount=7.639275828, mode=Mode.SUBTRACT)

    # Sketch17 → Cut-Extrude7 (cut)
    with BuildSketch(Plane.XY.offset(29.5)):
        with Locations((-13.410483779, -20.132105575)):
            Rectangle(SKETCH17_W, SKETCH17_H)
        with Locations((-13.410483779, -28.124114993)):
            Rectangle(SKETCH17_W, SKETCH17_H_2)
    extrude(amount=-CUT_EXTRUDE7_DEPTH, mode=Mode.SUBTRACT)

    # Sketch18 → Cut-Extrude8 (cut)
    with BuildSketch(Plane.XY):
        with Locations((-13.209901434, -17.695854471)):
            Rectangle(SKETCH18_W, SKETCH18_H)
        with Locations((-13.189489717, -30.396128596)):
            Rectangle(SKETCH18_W_2, SKETCH18_H_2)
    extrude(amount=CUT_EXTRUDE8_DEPTH, mode=Mode.SUBTRACT)


solid = part.part
